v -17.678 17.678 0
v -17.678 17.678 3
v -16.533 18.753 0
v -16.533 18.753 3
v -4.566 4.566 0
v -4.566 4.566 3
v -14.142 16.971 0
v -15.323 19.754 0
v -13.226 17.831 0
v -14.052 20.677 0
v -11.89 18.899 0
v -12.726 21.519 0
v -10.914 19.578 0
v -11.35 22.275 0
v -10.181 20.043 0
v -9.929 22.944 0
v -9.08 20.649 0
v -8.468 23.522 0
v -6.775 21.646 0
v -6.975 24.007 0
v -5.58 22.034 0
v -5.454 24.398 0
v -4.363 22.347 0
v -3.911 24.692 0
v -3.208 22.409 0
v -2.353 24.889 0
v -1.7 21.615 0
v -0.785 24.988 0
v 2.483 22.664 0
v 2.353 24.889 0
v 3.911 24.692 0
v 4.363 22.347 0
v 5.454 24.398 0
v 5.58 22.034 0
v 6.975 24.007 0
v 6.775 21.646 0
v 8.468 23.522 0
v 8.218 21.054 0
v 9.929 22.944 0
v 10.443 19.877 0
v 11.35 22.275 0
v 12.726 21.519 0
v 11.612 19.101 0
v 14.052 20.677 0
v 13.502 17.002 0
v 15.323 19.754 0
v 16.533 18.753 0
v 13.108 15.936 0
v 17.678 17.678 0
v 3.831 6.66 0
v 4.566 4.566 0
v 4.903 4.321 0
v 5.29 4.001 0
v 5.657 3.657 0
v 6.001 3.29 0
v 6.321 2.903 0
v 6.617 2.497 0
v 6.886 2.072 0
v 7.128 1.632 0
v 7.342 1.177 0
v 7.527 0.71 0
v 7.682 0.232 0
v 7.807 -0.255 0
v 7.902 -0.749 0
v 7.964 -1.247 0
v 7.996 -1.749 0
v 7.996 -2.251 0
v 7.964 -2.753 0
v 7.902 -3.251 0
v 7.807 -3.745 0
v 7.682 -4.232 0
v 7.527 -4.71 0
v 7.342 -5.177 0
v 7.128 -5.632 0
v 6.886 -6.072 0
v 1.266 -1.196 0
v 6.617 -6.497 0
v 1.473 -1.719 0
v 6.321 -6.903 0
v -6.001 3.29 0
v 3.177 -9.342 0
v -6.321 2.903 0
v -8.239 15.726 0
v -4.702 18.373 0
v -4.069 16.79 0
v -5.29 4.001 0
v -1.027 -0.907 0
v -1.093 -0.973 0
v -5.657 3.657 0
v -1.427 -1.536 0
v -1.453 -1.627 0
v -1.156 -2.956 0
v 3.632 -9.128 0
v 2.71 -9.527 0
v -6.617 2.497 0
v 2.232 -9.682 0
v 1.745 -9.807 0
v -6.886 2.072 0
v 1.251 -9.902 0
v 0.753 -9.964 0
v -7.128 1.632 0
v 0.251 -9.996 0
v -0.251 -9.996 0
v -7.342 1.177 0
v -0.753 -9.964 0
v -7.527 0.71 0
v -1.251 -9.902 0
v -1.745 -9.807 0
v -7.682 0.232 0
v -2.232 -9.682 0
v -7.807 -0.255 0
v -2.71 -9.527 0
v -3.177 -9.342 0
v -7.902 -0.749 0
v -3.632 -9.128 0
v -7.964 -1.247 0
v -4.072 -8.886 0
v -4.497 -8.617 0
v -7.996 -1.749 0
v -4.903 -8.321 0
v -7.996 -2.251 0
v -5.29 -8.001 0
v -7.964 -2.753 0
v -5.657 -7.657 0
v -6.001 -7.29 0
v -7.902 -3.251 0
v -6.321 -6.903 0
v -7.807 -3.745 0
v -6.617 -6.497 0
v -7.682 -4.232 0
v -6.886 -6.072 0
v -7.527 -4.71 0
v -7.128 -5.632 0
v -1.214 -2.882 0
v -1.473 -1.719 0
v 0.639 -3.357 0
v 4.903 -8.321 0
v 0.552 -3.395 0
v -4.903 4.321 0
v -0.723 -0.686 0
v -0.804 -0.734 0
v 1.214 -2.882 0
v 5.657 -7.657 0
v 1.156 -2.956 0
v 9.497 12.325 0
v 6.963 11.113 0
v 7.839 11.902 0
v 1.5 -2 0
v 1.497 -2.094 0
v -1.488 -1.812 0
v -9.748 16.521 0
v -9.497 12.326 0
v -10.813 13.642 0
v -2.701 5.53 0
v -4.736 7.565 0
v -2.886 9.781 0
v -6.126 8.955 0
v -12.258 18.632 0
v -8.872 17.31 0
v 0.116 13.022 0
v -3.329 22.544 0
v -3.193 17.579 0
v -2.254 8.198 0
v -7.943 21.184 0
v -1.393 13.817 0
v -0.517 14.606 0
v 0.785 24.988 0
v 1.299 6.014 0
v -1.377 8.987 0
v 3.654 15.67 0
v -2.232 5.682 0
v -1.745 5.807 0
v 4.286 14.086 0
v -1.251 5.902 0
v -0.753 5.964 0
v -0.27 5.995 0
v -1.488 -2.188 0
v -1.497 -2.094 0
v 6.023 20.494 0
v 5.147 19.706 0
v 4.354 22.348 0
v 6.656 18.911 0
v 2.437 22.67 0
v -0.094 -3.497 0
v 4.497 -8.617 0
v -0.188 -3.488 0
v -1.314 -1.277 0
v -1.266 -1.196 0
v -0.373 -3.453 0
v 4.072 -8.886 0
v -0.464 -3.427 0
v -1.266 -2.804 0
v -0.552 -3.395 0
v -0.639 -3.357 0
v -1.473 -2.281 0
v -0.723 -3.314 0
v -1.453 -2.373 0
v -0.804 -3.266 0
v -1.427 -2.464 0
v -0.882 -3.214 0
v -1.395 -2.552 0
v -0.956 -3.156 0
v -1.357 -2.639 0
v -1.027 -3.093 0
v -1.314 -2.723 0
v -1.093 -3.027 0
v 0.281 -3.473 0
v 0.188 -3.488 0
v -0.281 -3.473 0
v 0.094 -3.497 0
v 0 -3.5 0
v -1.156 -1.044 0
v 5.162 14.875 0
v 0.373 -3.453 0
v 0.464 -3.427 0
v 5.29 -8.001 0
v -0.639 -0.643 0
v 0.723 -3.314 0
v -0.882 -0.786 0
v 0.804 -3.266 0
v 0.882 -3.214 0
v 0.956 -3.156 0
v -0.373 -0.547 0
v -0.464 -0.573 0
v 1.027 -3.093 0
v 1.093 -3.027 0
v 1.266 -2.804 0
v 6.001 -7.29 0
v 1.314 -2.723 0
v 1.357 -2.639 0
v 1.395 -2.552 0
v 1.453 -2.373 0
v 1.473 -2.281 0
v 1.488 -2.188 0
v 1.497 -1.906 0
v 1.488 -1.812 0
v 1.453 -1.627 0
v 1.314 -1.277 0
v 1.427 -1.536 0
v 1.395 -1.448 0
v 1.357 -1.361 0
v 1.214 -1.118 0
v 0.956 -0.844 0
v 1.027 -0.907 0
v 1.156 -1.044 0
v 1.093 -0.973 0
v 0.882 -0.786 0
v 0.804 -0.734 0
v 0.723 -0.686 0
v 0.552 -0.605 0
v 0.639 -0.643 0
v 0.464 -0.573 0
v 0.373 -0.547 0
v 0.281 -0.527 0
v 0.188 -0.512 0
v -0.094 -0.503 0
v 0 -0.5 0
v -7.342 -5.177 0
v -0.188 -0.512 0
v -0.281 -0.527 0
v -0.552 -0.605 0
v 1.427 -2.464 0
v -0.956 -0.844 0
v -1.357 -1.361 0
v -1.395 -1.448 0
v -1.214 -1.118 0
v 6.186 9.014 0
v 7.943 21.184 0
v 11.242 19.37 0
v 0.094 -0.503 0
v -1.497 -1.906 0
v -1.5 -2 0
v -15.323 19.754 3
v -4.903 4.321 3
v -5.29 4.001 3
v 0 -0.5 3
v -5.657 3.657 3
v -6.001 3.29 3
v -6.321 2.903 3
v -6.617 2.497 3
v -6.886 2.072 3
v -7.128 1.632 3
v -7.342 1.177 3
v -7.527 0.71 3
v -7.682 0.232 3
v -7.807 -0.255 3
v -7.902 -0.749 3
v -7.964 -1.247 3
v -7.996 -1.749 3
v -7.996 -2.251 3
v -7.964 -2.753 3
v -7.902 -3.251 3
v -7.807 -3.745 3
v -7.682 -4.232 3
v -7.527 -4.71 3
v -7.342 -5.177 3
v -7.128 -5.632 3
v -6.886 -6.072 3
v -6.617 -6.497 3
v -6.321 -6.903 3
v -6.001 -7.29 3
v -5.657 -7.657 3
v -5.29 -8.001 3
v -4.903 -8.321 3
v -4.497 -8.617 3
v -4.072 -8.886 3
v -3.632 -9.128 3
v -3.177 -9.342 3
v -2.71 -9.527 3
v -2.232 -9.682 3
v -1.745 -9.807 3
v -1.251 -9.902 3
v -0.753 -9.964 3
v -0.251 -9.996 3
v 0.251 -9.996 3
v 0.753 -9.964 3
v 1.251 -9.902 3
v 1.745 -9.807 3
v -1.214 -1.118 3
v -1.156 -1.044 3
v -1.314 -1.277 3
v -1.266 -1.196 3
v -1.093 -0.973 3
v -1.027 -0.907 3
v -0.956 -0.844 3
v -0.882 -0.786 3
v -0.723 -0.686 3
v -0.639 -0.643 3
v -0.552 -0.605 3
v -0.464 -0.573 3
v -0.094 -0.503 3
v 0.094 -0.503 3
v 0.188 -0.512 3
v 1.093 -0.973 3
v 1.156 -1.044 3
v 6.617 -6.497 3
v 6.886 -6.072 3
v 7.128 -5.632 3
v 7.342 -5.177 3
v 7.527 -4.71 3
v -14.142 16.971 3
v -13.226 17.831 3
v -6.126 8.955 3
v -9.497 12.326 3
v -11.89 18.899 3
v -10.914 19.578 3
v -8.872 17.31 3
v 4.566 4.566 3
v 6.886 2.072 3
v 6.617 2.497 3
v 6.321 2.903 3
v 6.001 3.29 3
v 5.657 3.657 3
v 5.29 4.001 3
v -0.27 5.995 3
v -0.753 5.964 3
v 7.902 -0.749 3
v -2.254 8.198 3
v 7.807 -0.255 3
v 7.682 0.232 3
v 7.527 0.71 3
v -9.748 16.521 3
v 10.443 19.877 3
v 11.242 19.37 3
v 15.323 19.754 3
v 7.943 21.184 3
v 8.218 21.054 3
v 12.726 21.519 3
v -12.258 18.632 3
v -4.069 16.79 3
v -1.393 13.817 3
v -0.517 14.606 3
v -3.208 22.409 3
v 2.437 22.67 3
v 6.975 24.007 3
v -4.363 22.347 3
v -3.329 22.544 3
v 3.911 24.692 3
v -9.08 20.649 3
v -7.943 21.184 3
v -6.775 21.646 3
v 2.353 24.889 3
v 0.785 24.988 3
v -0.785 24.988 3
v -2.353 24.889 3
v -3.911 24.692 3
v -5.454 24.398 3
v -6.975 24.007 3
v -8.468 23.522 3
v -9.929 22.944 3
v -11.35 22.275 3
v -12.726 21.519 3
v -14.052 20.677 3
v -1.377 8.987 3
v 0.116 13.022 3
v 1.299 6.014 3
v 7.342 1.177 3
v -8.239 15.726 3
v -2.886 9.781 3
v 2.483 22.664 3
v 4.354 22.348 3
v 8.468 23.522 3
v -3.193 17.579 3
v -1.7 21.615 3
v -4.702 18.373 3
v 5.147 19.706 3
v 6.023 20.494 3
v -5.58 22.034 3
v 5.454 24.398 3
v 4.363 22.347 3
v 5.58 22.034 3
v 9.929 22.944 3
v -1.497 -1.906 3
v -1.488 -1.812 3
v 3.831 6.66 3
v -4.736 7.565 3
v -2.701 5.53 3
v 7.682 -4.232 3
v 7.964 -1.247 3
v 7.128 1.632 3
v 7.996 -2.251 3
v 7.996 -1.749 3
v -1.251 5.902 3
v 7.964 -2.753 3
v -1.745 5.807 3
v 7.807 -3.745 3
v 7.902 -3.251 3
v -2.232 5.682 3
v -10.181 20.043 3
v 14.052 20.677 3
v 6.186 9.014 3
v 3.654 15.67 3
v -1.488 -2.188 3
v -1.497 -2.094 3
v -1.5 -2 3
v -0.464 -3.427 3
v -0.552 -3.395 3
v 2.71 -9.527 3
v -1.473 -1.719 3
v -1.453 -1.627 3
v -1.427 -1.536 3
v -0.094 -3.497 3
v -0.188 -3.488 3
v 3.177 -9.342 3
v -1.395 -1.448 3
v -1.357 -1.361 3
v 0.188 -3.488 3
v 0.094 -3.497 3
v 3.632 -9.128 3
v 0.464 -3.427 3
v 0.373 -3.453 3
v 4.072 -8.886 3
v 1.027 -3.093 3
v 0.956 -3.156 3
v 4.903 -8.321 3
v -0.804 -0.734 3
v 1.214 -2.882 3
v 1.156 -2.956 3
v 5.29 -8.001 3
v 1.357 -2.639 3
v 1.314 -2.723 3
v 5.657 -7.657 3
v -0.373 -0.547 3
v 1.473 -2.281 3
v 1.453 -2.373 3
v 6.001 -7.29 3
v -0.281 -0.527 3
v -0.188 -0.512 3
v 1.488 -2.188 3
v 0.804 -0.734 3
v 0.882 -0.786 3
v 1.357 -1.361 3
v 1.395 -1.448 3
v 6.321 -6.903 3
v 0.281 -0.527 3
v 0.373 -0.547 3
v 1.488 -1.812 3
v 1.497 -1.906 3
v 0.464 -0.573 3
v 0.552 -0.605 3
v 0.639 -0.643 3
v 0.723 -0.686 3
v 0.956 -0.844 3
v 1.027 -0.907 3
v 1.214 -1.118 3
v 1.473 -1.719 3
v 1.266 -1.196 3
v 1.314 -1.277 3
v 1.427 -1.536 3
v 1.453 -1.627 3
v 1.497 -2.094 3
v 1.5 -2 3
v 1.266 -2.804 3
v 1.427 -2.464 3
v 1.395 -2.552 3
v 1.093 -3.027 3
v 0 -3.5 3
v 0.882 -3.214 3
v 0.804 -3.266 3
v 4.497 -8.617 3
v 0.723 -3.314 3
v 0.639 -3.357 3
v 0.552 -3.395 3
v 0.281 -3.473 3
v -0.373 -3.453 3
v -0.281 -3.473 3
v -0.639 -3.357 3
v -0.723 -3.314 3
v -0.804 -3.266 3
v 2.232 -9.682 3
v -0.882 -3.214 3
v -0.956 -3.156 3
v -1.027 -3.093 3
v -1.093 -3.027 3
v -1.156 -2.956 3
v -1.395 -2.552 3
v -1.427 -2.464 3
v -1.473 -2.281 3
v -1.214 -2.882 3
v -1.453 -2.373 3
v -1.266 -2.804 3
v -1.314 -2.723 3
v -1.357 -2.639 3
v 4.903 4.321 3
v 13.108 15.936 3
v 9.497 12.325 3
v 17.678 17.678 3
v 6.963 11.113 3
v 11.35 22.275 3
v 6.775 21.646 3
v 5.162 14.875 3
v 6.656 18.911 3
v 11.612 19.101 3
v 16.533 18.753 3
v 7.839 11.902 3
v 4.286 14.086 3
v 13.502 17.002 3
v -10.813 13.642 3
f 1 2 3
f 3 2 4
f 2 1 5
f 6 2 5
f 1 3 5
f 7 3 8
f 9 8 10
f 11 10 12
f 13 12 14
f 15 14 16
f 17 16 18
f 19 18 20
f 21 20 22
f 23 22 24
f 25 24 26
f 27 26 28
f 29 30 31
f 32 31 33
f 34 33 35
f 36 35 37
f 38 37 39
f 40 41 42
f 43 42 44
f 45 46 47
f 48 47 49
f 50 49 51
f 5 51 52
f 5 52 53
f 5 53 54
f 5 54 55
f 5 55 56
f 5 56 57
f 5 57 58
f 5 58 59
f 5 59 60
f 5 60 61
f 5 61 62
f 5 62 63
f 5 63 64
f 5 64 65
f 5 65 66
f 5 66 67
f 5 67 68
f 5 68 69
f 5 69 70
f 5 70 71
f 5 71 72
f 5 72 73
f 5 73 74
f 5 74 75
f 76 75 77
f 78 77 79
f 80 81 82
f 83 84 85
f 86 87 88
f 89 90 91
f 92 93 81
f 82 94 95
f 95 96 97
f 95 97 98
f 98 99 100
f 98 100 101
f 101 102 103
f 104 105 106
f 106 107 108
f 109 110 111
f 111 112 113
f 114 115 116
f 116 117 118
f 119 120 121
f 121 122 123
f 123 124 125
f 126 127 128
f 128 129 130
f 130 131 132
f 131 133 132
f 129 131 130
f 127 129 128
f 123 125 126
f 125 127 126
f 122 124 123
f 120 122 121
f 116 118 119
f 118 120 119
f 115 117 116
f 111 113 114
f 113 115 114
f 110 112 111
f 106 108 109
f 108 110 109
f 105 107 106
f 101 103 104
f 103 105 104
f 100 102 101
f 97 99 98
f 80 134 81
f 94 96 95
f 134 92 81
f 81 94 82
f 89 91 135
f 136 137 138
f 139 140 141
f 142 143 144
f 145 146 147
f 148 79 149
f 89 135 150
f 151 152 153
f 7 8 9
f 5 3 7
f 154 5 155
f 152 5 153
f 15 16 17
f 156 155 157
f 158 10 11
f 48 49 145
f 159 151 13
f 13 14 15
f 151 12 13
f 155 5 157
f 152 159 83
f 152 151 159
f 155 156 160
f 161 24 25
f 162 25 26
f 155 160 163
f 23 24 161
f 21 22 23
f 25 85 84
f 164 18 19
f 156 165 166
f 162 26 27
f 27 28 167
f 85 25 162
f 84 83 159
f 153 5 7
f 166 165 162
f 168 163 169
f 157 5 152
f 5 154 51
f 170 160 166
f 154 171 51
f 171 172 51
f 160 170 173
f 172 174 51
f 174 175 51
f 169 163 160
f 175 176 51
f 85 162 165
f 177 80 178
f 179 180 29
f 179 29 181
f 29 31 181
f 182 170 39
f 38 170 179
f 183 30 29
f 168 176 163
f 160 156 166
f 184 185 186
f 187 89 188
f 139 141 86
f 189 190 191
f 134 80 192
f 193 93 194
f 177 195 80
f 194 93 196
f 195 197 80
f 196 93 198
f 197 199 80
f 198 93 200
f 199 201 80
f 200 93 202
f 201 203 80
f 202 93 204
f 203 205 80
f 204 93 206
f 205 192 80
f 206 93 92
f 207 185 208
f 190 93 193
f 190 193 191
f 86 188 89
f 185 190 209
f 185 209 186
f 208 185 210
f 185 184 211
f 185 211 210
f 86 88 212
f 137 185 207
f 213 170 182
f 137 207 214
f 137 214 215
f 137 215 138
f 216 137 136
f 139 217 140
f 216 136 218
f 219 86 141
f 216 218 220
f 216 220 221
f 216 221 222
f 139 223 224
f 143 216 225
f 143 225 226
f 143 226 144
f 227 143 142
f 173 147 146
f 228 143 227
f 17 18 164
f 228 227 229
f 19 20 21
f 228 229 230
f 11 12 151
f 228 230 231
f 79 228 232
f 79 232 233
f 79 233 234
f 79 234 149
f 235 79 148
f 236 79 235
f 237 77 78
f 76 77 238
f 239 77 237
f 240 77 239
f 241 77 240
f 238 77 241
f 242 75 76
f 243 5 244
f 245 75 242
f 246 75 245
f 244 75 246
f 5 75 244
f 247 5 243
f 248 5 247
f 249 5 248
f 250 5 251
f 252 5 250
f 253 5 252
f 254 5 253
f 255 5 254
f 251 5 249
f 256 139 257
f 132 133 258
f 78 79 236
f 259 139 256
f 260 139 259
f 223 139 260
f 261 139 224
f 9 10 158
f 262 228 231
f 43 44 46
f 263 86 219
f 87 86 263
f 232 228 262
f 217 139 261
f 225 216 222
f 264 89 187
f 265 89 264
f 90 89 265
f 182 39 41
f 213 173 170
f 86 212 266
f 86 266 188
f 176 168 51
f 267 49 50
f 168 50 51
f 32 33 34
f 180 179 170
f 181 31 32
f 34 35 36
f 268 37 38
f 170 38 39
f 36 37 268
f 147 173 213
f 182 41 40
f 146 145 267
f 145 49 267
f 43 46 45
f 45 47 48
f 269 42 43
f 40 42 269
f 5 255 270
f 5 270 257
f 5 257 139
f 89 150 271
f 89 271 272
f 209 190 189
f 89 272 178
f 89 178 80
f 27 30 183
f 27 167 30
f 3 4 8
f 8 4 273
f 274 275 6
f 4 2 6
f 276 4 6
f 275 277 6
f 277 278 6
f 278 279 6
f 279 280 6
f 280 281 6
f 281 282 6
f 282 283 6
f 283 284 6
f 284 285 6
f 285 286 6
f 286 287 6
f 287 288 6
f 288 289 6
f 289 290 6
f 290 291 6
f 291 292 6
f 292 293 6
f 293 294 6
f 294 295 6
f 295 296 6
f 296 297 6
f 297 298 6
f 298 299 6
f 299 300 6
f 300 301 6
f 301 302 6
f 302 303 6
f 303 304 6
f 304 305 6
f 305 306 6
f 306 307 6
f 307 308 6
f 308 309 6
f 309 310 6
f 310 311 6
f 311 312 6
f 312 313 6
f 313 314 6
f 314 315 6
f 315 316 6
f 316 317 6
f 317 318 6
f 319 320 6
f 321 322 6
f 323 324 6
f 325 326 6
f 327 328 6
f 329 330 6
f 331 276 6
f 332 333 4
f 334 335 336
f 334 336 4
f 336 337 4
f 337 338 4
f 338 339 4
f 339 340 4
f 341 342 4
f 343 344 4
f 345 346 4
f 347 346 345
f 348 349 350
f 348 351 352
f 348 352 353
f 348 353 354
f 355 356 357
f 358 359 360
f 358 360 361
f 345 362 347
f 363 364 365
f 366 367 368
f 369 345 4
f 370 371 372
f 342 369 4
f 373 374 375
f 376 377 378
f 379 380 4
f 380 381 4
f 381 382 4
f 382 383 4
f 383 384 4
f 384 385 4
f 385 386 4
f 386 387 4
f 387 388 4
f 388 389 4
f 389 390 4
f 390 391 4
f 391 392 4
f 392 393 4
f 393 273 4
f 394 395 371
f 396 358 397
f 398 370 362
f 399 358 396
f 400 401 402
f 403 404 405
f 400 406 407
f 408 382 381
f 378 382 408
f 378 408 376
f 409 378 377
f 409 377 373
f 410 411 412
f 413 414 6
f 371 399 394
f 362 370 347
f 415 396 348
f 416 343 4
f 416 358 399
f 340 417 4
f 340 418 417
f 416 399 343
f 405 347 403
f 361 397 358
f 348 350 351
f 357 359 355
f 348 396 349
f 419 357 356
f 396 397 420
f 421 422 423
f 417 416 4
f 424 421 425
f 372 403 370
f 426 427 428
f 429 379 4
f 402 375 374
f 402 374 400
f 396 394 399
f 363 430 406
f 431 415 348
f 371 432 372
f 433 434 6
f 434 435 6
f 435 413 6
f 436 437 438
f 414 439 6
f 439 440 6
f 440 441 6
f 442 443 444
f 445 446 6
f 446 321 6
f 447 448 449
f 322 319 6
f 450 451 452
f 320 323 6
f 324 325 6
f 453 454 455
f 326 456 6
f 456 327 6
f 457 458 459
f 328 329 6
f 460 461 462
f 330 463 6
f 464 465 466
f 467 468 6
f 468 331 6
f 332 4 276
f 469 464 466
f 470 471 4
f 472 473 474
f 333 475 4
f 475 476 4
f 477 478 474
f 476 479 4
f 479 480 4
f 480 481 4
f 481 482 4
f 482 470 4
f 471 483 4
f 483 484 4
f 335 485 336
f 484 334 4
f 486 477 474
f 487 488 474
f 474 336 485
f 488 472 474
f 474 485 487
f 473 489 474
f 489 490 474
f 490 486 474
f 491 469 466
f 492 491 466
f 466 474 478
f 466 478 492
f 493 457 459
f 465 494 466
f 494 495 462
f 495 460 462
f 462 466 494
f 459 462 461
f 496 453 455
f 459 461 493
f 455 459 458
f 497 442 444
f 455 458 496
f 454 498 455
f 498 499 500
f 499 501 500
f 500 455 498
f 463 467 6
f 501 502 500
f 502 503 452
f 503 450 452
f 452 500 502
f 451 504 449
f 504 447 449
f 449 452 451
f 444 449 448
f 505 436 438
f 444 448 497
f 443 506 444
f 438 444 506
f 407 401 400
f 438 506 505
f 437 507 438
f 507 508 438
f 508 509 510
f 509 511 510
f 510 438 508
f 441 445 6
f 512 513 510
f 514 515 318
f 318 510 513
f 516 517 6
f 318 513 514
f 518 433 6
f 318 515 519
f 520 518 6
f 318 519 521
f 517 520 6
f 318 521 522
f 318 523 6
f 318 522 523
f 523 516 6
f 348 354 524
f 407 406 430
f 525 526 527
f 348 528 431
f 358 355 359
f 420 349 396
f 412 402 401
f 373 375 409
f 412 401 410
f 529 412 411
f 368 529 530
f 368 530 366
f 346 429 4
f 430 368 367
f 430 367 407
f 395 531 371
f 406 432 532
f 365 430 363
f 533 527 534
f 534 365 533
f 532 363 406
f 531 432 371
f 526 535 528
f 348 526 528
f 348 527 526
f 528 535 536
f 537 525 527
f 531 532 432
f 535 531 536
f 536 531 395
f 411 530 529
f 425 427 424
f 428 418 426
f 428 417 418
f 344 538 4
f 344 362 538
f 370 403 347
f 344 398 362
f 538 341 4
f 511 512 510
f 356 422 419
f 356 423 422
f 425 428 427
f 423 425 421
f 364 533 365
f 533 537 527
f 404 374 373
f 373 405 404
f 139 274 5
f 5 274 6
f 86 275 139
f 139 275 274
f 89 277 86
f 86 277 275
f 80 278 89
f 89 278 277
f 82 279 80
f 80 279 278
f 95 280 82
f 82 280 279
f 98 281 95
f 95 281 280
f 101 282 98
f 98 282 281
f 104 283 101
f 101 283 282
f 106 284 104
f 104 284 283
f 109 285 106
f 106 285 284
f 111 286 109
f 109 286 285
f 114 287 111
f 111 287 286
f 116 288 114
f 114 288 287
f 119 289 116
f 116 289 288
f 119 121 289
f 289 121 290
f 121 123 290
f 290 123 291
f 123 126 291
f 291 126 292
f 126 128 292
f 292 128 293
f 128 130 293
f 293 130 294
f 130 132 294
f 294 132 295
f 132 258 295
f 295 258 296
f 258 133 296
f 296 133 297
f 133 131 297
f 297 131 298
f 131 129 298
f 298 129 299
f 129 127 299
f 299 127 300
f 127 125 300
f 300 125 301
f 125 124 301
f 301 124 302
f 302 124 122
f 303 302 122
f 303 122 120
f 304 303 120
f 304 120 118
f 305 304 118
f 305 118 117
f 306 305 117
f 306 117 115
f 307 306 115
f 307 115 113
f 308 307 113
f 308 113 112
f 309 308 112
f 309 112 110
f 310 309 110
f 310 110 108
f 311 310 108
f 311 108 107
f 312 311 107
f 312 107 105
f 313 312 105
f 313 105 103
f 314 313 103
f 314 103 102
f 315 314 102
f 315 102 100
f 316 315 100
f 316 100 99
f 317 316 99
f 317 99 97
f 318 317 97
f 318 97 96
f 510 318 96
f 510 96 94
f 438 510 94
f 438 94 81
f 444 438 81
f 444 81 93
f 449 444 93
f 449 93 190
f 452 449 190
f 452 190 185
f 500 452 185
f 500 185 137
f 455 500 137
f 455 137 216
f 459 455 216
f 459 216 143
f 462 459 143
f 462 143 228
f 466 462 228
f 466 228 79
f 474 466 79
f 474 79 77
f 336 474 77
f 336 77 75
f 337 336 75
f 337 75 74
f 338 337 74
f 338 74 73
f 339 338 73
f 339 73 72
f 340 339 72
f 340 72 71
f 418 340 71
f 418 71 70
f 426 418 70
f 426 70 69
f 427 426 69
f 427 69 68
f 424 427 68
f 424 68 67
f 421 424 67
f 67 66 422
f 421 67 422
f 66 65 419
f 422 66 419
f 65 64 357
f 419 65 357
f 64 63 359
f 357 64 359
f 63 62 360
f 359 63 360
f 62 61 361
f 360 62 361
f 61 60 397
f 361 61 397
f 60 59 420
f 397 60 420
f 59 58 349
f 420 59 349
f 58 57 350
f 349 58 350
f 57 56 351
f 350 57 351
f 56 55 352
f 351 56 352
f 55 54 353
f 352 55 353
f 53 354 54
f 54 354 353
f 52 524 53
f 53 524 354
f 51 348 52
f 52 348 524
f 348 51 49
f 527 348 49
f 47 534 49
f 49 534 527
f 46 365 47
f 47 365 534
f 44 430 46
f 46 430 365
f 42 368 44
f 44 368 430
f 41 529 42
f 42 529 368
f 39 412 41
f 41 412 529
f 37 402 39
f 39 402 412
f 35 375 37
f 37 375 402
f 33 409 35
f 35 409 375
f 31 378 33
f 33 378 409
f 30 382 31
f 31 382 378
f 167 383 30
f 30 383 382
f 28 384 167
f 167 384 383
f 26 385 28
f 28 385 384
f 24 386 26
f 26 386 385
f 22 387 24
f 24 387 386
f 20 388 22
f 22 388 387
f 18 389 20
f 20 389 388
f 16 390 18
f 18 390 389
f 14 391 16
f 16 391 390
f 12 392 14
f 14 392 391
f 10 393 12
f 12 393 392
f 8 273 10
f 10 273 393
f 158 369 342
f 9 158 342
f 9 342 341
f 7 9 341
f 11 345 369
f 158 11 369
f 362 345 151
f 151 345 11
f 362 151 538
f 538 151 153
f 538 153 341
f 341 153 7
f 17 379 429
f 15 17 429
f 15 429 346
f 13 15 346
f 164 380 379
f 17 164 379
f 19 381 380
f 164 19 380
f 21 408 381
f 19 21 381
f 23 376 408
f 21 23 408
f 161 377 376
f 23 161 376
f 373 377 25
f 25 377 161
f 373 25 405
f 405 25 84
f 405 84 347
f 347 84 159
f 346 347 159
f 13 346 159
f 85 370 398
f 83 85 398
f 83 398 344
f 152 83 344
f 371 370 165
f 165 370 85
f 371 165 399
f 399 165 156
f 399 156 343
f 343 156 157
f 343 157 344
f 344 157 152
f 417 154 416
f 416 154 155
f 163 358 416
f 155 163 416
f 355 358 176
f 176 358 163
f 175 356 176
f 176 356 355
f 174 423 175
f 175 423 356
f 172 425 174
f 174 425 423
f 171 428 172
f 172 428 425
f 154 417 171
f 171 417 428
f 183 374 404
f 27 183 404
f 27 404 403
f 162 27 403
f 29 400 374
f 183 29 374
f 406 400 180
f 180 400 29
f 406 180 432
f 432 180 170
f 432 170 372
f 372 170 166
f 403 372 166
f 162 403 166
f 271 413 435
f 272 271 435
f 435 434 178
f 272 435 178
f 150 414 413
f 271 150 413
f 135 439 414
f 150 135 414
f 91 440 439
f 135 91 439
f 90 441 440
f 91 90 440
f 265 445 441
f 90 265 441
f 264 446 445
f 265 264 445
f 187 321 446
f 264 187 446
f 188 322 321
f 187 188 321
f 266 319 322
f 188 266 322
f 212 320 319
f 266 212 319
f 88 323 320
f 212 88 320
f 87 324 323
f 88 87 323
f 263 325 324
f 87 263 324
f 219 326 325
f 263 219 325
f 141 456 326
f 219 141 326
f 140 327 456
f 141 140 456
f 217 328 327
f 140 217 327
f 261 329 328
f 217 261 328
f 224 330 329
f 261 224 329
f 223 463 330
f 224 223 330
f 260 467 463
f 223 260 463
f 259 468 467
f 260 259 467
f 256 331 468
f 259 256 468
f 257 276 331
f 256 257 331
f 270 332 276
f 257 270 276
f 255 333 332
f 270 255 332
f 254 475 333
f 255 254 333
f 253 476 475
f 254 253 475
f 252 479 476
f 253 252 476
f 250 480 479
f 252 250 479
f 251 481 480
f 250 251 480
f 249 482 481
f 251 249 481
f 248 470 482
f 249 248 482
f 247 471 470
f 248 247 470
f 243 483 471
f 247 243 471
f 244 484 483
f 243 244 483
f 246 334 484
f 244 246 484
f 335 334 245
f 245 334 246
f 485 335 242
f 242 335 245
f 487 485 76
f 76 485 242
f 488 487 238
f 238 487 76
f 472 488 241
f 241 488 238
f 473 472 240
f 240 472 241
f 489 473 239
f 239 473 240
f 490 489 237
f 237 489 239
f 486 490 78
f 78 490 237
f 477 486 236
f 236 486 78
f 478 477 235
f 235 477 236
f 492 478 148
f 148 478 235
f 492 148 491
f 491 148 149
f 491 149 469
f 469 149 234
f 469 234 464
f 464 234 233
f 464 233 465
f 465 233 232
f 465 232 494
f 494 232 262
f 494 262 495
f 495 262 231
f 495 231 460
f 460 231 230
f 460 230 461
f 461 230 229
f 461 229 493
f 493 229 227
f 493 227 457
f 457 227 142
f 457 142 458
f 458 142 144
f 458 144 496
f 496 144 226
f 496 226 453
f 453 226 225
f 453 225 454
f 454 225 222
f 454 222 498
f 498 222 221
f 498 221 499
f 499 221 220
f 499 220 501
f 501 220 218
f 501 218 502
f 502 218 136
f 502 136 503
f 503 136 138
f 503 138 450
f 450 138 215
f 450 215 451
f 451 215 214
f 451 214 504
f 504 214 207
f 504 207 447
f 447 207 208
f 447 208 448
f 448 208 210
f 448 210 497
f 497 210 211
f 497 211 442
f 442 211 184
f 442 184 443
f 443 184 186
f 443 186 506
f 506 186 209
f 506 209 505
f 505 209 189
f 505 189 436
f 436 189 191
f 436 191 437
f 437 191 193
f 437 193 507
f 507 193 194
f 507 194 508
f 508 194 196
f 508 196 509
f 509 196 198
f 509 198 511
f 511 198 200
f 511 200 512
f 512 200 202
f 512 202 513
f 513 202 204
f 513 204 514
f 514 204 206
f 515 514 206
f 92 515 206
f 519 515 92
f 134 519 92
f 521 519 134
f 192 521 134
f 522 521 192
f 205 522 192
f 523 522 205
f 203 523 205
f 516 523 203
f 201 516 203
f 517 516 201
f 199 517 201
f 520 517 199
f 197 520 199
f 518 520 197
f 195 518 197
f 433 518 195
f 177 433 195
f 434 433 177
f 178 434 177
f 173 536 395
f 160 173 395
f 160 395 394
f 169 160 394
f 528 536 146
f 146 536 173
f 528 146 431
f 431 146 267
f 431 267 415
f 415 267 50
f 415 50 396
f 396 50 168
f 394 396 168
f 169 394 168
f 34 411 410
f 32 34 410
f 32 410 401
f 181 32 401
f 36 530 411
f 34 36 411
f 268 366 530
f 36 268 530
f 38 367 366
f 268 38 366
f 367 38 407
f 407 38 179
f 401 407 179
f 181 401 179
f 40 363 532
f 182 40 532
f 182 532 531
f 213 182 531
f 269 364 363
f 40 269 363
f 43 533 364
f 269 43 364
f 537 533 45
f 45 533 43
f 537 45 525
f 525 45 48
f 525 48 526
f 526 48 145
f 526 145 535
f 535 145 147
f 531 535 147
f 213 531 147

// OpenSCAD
$fn = 100;
rad_main = 25;
dim_wallMain = 5;
dim_wallH = 3;

asm();


module grid(){
	difference(){
		pie(r=rad_main, h= dim_wallH);
		rotate([0,0,-3])hexArray(10,10,4);
	}
}

module asm(){
difference(){
	rotate([ 0, 0, 45])
	union(){
		difference(){
			pie(r=rad_main, h= dim_wallH);
			translate([dim_wallMain * 0.4, dim_wallMain * 0.4,-1])pie(r=rad_main - dim_wallMain, h= dim_wallH + 2);
		}
		grid();
		translate([sqrt(2)*-1,sqrt(2)*-1,0])cylinder(r=8,h=dim_wallH);
	}
	translate([0,-2,0])cylinder(r=1.5,h=100,center=true);
	}
}

module hexArray(x,y,r){
	gap = r;
	scale([1.1,1,1])
	translate([x * r * -1, y * r * -1,0]){
		for(yOff = [0:2:y])
			for(xOff = [0:x])
				translate([xOff * (r + gap), yOff * (r*0.9 + gap),0])rotate([0,0,30])cylinder(r=r,h = 20,center=true,$fn = 6);
		for(yOff = [1:2:y])
			for(xOff = [0:x])
				translate([xOff * (r + gap) + r , yOff * (r*0.9 + gap),0])rotate([0,0,30])cylinder(r=r,h = 20,center=true,$fn = 6);
	}

}


module pie(r,h){
	intersection(){
		cylinder(r = r, h = h);
		translate([0,0,-1])cube([r,r,h+2]);
	}
}
